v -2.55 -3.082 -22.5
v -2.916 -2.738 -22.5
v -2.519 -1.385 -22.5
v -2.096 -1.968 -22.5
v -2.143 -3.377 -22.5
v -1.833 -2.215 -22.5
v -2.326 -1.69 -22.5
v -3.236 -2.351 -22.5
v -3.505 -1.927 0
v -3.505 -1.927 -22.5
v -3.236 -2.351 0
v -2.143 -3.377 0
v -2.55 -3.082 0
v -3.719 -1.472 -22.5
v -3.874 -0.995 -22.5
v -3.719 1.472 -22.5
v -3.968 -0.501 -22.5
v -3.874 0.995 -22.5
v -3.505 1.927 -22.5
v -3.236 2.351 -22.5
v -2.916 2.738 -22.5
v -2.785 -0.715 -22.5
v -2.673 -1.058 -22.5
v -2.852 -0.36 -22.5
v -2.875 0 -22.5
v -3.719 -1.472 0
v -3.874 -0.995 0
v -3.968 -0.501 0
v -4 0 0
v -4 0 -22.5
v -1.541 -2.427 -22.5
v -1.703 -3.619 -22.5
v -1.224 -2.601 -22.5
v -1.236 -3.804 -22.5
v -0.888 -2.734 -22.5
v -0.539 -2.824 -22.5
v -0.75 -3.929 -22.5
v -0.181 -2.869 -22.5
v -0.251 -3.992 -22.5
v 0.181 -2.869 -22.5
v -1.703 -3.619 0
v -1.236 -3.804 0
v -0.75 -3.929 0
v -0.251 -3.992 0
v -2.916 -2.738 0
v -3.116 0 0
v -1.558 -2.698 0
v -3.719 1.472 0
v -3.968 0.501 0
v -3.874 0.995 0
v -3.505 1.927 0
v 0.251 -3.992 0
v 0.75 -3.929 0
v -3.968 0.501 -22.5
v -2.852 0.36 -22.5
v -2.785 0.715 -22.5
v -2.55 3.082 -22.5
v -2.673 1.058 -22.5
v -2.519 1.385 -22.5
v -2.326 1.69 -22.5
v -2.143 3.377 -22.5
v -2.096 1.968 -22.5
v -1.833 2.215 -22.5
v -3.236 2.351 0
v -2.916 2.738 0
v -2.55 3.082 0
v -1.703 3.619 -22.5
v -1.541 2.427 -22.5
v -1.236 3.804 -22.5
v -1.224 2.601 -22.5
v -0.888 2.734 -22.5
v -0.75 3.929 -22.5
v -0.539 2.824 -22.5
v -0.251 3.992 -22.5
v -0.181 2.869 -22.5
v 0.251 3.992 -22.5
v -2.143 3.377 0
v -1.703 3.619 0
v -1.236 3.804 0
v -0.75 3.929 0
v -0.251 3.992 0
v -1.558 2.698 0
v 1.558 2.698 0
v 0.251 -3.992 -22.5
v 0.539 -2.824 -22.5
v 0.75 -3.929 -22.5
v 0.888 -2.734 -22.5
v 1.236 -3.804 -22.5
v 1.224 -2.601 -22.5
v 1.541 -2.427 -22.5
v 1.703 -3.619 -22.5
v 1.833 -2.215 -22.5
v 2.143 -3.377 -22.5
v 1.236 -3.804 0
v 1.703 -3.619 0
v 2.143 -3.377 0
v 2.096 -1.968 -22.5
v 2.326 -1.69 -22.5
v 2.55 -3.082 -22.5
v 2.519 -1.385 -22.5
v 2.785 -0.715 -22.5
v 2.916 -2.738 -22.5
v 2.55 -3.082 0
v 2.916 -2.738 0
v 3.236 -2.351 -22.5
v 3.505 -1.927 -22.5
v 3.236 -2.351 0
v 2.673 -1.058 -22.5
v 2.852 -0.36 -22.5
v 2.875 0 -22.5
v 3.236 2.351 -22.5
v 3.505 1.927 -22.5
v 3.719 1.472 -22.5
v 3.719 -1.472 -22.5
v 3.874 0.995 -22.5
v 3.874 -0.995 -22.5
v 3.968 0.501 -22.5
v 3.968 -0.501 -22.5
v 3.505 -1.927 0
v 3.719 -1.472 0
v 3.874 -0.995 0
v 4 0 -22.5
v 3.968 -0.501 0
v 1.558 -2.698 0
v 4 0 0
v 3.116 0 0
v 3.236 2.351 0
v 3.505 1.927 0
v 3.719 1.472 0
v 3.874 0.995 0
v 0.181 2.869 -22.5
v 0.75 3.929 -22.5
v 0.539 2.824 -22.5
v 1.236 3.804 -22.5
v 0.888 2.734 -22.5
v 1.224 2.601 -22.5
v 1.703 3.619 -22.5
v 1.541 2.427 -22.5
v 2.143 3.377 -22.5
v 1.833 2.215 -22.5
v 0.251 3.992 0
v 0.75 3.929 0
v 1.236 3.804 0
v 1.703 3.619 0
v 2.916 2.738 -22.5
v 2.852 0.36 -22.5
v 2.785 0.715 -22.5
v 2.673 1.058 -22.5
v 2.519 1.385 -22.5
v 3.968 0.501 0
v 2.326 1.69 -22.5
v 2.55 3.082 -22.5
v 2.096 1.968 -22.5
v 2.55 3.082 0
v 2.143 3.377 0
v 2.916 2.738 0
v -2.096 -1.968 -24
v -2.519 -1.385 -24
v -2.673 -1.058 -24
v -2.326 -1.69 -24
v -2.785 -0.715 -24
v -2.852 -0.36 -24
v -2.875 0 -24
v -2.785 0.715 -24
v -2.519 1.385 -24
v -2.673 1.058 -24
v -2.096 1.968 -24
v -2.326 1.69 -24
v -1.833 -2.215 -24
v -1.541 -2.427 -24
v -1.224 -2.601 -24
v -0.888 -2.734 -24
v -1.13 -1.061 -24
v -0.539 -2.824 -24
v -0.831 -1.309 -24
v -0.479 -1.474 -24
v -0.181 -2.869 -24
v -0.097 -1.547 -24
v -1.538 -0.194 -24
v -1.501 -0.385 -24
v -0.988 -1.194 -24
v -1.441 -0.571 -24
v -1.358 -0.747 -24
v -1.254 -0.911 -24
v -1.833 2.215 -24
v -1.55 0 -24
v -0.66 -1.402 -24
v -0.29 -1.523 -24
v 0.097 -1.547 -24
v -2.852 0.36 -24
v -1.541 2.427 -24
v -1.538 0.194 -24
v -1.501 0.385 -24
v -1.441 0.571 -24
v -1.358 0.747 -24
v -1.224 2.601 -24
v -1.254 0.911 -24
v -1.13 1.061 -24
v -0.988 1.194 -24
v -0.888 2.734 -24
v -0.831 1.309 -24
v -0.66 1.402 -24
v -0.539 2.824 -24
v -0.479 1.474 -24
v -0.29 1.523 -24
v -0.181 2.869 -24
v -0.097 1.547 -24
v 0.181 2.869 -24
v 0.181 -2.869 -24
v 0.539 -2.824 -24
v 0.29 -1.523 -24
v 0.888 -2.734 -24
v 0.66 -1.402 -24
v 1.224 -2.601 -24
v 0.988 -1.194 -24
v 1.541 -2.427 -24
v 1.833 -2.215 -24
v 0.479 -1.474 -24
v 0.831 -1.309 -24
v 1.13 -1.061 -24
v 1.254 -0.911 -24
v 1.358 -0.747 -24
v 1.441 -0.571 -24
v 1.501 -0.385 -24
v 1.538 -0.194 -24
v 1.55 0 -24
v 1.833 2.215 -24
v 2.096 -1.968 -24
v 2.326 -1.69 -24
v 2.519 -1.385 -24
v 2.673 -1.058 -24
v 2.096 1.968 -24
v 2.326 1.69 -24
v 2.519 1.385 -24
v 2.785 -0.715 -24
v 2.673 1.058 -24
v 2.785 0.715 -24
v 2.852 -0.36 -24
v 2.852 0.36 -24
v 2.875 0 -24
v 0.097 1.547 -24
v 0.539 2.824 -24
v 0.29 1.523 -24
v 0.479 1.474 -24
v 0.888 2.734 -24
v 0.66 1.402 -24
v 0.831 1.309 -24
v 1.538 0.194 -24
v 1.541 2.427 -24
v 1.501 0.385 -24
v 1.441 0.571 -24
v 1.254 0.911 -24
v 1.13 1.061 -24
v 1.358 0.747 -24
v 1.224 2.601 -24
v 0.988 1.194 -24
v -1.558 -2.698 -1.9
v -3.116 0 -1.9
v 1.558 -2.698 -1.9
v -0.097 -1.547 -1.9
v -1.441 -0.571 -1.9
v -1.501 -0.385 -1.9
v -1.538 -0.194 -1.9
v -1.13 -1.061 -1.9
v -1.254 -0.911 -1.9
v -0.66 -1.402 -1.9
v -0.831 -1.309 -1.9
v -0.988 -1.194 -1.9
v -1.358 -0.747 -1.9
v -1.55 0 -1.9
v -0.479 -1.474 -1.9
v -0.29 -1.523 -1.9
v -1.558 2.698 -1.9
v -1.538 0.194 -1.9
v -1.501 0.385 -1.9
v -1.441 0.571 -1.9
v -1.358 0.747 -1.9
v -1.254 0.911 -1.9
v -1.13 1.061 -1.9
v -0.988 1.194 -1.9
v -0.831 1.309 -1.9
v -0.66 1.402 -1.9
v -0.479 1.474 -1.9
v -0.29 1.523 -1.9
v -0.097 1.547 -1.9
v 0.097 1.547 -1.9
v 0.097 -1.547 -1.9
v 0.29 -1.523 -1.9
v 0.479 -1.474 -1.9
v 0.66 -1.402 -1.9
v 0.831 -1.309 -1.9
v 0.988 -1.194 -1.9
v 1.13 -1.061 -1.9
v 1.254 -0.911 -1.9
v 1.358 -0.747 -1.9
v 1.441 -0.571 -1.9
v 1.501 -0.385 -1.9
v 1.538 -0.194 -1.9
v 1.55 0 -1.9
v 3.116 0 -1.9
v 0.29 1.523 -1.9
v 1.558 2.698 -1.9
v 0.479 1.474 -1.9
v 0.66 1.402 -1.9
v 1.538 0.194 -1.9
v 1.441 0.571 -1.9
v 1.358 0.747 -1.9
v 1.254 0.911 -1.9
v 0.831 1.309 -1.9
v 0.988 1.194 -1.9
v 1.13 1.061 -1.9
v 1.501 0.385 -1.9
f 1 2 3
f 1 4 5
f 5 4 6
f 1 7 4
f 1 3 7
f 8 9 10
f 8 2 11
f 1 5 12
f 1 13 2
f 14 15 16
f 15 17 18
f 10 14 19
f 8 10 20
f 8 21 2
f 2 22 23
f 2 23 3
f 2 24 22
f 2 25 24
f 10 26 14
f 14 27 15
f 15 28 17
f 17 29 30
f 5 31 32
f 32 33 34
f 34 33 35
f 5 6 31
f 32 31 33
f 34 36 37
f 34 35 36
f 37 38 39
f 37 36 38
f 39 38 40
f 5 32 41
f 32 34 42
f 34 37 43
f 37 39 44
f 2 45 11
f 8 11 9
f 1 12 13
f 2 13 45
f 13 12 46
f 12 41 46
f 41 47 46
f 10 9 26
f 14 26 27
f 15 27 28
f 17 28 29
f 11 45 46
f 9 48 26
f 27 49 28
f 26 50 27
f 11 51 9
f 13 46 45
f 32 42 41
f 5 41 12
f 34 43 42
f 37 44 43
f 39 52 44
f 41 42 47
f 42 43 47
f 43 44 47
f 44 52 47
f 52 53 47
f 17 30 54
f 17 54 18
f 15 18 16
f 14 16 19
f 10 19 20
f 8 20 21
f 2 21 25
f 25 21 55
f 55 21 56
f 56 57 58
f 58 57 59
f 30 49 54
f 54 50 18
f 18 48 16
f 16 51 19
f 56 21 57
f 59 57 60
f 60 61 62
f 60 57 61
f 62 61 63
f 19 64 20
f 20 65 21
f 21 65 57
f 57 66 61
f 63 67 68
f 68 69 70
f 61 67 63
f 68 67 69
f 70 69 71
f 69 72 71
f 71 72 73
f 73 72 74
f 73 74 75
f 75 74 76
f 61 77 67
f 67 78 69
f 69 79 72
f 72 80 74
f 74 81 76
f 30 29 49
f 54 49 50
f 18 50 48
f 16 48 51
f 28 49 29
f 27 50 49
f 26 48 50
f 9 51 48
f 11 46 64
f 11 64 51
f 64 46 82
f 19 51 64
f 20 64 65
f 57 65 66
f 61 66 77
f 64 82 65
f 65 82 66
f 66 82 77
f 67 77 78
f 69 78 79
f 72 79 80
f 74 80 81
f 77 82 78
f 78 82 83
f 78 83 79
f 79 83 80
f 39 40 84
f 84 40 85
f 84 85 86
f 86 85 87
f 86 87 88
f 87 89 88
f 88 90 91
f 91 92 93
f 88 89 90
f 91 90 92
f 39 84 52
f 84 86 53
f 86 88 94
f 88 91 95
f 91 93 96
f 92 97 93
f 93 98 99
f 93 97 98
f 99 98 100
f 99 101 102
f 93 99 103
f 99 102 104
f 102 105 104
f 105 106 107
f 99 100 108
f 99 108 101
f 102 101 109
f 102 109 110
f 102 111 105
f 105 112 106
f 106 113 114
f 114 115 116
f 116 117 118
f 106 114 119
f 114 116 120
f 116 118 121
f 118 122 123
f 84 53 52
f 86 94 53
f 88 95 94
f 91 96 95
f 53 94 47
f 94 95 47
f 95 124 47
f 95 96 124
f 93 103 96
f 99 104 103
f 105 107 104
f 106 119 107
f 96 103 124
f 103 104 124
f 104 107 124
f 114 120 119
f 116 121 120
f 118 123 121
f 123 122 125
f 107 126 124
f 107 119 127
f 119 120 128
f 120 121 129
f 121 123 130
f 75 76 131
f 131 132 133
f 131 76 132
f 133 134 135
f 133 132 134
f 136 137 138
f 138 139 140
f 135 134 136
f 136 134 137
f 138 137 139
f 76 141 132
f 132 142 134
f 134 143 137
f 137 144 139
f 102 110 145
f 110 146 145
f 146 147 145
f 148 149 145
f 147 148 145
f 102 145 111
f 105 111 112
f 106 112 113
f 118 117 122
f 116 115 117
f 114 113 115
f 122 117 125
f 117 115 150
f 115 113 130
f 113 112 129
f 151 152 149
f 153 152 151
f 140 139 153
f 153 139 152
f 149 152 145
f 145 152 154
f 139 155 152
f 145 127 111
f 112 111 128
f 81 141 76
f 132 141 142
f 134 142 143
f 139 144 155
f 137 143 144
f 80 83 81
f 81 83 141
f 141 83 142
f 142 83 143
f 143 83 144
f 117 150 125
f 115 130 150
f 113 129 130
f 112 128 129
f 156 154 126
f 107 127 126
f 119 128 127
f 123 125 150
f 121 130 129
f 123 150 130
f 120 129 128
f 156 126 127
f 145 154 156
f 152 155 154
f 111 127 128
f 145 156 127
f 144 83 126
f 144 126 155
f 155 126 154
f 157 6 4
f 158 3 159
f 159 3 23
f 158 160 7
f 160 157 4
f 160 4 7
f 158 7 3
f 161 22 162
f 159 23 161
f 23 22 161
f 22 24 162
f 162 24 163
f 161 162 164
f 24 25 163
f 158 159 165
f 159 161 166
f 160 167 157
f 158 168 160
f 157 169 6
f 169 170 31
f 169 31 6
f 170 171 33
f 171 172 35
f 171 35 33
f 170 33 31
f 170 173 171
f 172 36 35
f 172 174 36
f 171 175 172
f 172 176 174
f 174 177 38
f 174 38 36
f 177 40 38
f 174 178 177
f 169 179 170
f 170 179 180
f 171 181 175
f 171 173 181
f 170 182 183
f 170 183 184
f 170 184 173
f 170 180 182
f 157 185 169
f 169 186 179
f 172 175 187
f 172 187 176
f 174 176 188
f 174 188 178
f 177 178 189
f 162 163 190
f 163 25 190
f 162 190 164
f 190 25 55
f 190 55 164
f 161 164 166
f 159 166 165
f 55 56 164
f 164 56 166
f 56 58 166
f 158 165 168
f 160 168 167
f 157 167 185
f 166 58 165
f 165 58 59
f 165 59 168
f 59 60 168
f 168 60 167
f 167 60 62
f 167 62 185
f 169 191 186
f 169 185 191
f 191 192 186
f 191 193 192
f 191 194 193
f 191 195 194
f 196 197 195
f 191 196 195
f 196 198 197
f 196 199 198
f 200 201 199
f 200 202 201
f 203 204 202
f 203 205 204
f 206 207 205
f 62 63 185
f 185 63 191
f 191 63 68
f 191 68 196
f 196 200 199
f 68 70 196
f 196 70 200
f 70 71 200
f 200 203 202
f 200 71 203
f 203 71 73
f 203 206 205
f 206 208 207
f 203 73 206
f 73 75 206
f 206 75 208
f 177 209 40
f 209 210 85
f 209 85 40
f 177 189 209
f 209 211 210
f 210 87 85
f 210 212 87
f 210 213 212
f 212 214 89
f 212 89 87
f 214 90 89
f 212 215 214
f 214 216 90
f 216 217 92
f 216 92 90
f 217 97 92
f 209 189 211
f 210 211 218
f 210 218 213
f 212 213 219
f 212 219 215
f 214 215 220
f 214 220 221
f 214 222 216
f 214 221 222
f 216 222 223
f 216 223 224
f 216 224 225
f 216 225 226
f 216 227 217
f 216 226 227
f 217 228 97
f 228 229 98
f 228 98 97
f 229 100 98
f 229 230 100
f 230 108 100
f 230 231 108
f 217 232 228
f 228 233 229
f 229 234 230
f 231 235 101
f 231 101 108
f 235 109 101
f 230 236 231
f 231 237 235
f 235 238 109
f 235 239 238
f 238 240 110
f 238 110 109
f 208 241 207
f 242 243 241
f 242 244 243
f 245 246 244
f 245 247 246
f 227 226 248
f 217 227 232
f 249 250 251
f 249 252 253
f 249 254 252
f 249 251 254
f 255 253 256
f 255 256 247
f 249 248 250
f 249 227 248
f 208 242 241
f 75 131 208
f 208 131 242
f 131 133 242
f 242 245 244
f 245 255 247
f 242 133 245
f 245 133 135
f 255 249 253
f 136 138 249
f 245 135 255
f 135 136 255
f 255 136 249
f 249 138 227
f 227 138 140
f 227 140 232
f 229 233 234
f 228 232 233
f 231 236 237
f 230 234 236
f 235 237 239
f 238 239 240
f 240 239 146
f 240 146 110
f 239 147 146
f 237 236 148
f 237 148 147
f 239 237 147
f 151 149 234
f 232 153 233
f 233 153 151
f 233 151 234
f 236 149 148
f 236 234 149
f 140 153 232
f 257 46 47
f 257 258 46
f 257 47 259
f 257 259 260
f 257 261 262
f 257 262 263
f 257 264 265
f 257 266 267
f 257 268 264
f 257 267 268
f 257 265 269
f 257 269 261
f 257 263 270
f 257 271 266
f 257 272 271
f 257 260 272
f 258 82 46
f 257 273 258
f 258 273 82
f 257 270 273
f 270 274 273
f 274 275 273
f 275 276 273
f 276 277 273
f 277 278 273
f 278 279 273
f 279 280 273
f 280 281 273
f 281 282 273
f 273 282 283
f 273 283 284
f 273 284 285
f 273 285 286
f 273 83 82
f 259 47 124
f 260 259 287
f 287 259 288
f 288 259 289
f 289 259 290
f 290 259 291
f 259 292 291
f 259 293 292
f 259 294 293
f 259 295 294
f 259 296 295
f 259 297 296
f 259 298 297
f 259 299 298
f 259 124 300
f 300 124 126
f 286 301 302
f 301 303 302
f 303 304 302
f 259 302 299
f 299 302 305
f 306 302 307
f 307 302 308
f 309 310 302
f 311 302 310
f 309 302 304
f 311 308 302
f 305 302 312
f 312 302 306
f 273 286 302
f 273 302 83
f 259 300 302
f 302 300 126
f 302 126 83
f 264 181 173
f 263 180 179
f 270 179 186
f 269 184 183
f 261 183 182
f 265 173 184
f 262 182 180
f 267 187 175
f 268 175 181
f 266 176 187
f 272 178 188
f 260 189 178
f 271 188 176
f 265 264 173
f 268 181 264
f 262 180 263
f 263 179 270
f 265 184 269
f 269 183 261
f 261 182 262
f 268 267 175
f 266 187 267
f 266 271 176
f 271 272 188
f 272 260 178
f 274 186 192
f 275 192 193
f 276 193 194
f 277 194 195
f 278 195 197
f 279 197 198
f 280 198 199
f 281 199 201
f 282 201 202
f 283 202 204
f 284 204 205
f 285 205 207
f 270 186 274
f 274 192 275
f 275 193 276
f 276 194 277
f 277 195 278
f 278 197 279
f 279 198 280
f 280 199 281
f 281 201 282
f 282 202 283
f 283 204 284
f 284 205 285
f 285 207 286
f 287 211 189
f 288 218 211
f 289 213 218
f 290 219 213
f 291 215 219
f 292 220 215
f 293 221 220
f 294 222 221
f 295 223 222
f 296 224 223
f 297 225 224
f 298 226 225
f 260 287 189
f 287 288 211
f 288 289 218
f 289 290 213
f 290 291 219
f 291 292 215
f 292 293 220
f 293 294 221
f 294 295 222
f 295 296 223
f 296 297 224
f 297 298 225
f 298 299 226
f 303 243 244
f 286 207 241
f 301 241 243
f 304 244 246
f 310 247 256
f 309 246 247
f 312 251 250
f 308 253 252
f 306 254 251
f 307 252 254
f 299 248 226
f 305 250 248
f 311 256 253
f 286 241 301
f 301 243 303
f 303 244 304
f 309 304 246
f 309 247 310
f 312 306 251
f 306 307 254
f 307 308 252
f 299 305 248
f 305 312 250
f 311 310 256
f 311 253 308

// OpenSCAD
$fn = 50;

difference() {
	union() {
		translate(v = [0, 0, -22.5]) {
			cylinder(h = 22.5, r = 4.0);
		}
		#translate(v = [0, 0, -24.0]) {
			cylinder(h = 24, r = 2.875);
		}
	}
	union() {
		translate(v = [0, 0, 0]) {
			rotate(a = [0, 0, 0]) {
				difference() {
					union() {
						translate(v = [0, 0, -1.9]) {
							linear_extrude(height = 1.9) {
								polygon(points = [[3.1158, 0.0], [1.5579000000000005, 2.698361953111554], [-1.5578999999999994, 2.6983619531115544], [-3.1158, 3.815754496783323e-16], [-1.5579000000000014, -2.6983619531115535], [1.557899999999998, -2.6983619531115552]]);
							}
						}
					}
					union();
				}
			}
		}
		#translate(v = [0, 0, -100.0]) {
			cylinder(h = 200, r = 1.55);
		}
	}
}
